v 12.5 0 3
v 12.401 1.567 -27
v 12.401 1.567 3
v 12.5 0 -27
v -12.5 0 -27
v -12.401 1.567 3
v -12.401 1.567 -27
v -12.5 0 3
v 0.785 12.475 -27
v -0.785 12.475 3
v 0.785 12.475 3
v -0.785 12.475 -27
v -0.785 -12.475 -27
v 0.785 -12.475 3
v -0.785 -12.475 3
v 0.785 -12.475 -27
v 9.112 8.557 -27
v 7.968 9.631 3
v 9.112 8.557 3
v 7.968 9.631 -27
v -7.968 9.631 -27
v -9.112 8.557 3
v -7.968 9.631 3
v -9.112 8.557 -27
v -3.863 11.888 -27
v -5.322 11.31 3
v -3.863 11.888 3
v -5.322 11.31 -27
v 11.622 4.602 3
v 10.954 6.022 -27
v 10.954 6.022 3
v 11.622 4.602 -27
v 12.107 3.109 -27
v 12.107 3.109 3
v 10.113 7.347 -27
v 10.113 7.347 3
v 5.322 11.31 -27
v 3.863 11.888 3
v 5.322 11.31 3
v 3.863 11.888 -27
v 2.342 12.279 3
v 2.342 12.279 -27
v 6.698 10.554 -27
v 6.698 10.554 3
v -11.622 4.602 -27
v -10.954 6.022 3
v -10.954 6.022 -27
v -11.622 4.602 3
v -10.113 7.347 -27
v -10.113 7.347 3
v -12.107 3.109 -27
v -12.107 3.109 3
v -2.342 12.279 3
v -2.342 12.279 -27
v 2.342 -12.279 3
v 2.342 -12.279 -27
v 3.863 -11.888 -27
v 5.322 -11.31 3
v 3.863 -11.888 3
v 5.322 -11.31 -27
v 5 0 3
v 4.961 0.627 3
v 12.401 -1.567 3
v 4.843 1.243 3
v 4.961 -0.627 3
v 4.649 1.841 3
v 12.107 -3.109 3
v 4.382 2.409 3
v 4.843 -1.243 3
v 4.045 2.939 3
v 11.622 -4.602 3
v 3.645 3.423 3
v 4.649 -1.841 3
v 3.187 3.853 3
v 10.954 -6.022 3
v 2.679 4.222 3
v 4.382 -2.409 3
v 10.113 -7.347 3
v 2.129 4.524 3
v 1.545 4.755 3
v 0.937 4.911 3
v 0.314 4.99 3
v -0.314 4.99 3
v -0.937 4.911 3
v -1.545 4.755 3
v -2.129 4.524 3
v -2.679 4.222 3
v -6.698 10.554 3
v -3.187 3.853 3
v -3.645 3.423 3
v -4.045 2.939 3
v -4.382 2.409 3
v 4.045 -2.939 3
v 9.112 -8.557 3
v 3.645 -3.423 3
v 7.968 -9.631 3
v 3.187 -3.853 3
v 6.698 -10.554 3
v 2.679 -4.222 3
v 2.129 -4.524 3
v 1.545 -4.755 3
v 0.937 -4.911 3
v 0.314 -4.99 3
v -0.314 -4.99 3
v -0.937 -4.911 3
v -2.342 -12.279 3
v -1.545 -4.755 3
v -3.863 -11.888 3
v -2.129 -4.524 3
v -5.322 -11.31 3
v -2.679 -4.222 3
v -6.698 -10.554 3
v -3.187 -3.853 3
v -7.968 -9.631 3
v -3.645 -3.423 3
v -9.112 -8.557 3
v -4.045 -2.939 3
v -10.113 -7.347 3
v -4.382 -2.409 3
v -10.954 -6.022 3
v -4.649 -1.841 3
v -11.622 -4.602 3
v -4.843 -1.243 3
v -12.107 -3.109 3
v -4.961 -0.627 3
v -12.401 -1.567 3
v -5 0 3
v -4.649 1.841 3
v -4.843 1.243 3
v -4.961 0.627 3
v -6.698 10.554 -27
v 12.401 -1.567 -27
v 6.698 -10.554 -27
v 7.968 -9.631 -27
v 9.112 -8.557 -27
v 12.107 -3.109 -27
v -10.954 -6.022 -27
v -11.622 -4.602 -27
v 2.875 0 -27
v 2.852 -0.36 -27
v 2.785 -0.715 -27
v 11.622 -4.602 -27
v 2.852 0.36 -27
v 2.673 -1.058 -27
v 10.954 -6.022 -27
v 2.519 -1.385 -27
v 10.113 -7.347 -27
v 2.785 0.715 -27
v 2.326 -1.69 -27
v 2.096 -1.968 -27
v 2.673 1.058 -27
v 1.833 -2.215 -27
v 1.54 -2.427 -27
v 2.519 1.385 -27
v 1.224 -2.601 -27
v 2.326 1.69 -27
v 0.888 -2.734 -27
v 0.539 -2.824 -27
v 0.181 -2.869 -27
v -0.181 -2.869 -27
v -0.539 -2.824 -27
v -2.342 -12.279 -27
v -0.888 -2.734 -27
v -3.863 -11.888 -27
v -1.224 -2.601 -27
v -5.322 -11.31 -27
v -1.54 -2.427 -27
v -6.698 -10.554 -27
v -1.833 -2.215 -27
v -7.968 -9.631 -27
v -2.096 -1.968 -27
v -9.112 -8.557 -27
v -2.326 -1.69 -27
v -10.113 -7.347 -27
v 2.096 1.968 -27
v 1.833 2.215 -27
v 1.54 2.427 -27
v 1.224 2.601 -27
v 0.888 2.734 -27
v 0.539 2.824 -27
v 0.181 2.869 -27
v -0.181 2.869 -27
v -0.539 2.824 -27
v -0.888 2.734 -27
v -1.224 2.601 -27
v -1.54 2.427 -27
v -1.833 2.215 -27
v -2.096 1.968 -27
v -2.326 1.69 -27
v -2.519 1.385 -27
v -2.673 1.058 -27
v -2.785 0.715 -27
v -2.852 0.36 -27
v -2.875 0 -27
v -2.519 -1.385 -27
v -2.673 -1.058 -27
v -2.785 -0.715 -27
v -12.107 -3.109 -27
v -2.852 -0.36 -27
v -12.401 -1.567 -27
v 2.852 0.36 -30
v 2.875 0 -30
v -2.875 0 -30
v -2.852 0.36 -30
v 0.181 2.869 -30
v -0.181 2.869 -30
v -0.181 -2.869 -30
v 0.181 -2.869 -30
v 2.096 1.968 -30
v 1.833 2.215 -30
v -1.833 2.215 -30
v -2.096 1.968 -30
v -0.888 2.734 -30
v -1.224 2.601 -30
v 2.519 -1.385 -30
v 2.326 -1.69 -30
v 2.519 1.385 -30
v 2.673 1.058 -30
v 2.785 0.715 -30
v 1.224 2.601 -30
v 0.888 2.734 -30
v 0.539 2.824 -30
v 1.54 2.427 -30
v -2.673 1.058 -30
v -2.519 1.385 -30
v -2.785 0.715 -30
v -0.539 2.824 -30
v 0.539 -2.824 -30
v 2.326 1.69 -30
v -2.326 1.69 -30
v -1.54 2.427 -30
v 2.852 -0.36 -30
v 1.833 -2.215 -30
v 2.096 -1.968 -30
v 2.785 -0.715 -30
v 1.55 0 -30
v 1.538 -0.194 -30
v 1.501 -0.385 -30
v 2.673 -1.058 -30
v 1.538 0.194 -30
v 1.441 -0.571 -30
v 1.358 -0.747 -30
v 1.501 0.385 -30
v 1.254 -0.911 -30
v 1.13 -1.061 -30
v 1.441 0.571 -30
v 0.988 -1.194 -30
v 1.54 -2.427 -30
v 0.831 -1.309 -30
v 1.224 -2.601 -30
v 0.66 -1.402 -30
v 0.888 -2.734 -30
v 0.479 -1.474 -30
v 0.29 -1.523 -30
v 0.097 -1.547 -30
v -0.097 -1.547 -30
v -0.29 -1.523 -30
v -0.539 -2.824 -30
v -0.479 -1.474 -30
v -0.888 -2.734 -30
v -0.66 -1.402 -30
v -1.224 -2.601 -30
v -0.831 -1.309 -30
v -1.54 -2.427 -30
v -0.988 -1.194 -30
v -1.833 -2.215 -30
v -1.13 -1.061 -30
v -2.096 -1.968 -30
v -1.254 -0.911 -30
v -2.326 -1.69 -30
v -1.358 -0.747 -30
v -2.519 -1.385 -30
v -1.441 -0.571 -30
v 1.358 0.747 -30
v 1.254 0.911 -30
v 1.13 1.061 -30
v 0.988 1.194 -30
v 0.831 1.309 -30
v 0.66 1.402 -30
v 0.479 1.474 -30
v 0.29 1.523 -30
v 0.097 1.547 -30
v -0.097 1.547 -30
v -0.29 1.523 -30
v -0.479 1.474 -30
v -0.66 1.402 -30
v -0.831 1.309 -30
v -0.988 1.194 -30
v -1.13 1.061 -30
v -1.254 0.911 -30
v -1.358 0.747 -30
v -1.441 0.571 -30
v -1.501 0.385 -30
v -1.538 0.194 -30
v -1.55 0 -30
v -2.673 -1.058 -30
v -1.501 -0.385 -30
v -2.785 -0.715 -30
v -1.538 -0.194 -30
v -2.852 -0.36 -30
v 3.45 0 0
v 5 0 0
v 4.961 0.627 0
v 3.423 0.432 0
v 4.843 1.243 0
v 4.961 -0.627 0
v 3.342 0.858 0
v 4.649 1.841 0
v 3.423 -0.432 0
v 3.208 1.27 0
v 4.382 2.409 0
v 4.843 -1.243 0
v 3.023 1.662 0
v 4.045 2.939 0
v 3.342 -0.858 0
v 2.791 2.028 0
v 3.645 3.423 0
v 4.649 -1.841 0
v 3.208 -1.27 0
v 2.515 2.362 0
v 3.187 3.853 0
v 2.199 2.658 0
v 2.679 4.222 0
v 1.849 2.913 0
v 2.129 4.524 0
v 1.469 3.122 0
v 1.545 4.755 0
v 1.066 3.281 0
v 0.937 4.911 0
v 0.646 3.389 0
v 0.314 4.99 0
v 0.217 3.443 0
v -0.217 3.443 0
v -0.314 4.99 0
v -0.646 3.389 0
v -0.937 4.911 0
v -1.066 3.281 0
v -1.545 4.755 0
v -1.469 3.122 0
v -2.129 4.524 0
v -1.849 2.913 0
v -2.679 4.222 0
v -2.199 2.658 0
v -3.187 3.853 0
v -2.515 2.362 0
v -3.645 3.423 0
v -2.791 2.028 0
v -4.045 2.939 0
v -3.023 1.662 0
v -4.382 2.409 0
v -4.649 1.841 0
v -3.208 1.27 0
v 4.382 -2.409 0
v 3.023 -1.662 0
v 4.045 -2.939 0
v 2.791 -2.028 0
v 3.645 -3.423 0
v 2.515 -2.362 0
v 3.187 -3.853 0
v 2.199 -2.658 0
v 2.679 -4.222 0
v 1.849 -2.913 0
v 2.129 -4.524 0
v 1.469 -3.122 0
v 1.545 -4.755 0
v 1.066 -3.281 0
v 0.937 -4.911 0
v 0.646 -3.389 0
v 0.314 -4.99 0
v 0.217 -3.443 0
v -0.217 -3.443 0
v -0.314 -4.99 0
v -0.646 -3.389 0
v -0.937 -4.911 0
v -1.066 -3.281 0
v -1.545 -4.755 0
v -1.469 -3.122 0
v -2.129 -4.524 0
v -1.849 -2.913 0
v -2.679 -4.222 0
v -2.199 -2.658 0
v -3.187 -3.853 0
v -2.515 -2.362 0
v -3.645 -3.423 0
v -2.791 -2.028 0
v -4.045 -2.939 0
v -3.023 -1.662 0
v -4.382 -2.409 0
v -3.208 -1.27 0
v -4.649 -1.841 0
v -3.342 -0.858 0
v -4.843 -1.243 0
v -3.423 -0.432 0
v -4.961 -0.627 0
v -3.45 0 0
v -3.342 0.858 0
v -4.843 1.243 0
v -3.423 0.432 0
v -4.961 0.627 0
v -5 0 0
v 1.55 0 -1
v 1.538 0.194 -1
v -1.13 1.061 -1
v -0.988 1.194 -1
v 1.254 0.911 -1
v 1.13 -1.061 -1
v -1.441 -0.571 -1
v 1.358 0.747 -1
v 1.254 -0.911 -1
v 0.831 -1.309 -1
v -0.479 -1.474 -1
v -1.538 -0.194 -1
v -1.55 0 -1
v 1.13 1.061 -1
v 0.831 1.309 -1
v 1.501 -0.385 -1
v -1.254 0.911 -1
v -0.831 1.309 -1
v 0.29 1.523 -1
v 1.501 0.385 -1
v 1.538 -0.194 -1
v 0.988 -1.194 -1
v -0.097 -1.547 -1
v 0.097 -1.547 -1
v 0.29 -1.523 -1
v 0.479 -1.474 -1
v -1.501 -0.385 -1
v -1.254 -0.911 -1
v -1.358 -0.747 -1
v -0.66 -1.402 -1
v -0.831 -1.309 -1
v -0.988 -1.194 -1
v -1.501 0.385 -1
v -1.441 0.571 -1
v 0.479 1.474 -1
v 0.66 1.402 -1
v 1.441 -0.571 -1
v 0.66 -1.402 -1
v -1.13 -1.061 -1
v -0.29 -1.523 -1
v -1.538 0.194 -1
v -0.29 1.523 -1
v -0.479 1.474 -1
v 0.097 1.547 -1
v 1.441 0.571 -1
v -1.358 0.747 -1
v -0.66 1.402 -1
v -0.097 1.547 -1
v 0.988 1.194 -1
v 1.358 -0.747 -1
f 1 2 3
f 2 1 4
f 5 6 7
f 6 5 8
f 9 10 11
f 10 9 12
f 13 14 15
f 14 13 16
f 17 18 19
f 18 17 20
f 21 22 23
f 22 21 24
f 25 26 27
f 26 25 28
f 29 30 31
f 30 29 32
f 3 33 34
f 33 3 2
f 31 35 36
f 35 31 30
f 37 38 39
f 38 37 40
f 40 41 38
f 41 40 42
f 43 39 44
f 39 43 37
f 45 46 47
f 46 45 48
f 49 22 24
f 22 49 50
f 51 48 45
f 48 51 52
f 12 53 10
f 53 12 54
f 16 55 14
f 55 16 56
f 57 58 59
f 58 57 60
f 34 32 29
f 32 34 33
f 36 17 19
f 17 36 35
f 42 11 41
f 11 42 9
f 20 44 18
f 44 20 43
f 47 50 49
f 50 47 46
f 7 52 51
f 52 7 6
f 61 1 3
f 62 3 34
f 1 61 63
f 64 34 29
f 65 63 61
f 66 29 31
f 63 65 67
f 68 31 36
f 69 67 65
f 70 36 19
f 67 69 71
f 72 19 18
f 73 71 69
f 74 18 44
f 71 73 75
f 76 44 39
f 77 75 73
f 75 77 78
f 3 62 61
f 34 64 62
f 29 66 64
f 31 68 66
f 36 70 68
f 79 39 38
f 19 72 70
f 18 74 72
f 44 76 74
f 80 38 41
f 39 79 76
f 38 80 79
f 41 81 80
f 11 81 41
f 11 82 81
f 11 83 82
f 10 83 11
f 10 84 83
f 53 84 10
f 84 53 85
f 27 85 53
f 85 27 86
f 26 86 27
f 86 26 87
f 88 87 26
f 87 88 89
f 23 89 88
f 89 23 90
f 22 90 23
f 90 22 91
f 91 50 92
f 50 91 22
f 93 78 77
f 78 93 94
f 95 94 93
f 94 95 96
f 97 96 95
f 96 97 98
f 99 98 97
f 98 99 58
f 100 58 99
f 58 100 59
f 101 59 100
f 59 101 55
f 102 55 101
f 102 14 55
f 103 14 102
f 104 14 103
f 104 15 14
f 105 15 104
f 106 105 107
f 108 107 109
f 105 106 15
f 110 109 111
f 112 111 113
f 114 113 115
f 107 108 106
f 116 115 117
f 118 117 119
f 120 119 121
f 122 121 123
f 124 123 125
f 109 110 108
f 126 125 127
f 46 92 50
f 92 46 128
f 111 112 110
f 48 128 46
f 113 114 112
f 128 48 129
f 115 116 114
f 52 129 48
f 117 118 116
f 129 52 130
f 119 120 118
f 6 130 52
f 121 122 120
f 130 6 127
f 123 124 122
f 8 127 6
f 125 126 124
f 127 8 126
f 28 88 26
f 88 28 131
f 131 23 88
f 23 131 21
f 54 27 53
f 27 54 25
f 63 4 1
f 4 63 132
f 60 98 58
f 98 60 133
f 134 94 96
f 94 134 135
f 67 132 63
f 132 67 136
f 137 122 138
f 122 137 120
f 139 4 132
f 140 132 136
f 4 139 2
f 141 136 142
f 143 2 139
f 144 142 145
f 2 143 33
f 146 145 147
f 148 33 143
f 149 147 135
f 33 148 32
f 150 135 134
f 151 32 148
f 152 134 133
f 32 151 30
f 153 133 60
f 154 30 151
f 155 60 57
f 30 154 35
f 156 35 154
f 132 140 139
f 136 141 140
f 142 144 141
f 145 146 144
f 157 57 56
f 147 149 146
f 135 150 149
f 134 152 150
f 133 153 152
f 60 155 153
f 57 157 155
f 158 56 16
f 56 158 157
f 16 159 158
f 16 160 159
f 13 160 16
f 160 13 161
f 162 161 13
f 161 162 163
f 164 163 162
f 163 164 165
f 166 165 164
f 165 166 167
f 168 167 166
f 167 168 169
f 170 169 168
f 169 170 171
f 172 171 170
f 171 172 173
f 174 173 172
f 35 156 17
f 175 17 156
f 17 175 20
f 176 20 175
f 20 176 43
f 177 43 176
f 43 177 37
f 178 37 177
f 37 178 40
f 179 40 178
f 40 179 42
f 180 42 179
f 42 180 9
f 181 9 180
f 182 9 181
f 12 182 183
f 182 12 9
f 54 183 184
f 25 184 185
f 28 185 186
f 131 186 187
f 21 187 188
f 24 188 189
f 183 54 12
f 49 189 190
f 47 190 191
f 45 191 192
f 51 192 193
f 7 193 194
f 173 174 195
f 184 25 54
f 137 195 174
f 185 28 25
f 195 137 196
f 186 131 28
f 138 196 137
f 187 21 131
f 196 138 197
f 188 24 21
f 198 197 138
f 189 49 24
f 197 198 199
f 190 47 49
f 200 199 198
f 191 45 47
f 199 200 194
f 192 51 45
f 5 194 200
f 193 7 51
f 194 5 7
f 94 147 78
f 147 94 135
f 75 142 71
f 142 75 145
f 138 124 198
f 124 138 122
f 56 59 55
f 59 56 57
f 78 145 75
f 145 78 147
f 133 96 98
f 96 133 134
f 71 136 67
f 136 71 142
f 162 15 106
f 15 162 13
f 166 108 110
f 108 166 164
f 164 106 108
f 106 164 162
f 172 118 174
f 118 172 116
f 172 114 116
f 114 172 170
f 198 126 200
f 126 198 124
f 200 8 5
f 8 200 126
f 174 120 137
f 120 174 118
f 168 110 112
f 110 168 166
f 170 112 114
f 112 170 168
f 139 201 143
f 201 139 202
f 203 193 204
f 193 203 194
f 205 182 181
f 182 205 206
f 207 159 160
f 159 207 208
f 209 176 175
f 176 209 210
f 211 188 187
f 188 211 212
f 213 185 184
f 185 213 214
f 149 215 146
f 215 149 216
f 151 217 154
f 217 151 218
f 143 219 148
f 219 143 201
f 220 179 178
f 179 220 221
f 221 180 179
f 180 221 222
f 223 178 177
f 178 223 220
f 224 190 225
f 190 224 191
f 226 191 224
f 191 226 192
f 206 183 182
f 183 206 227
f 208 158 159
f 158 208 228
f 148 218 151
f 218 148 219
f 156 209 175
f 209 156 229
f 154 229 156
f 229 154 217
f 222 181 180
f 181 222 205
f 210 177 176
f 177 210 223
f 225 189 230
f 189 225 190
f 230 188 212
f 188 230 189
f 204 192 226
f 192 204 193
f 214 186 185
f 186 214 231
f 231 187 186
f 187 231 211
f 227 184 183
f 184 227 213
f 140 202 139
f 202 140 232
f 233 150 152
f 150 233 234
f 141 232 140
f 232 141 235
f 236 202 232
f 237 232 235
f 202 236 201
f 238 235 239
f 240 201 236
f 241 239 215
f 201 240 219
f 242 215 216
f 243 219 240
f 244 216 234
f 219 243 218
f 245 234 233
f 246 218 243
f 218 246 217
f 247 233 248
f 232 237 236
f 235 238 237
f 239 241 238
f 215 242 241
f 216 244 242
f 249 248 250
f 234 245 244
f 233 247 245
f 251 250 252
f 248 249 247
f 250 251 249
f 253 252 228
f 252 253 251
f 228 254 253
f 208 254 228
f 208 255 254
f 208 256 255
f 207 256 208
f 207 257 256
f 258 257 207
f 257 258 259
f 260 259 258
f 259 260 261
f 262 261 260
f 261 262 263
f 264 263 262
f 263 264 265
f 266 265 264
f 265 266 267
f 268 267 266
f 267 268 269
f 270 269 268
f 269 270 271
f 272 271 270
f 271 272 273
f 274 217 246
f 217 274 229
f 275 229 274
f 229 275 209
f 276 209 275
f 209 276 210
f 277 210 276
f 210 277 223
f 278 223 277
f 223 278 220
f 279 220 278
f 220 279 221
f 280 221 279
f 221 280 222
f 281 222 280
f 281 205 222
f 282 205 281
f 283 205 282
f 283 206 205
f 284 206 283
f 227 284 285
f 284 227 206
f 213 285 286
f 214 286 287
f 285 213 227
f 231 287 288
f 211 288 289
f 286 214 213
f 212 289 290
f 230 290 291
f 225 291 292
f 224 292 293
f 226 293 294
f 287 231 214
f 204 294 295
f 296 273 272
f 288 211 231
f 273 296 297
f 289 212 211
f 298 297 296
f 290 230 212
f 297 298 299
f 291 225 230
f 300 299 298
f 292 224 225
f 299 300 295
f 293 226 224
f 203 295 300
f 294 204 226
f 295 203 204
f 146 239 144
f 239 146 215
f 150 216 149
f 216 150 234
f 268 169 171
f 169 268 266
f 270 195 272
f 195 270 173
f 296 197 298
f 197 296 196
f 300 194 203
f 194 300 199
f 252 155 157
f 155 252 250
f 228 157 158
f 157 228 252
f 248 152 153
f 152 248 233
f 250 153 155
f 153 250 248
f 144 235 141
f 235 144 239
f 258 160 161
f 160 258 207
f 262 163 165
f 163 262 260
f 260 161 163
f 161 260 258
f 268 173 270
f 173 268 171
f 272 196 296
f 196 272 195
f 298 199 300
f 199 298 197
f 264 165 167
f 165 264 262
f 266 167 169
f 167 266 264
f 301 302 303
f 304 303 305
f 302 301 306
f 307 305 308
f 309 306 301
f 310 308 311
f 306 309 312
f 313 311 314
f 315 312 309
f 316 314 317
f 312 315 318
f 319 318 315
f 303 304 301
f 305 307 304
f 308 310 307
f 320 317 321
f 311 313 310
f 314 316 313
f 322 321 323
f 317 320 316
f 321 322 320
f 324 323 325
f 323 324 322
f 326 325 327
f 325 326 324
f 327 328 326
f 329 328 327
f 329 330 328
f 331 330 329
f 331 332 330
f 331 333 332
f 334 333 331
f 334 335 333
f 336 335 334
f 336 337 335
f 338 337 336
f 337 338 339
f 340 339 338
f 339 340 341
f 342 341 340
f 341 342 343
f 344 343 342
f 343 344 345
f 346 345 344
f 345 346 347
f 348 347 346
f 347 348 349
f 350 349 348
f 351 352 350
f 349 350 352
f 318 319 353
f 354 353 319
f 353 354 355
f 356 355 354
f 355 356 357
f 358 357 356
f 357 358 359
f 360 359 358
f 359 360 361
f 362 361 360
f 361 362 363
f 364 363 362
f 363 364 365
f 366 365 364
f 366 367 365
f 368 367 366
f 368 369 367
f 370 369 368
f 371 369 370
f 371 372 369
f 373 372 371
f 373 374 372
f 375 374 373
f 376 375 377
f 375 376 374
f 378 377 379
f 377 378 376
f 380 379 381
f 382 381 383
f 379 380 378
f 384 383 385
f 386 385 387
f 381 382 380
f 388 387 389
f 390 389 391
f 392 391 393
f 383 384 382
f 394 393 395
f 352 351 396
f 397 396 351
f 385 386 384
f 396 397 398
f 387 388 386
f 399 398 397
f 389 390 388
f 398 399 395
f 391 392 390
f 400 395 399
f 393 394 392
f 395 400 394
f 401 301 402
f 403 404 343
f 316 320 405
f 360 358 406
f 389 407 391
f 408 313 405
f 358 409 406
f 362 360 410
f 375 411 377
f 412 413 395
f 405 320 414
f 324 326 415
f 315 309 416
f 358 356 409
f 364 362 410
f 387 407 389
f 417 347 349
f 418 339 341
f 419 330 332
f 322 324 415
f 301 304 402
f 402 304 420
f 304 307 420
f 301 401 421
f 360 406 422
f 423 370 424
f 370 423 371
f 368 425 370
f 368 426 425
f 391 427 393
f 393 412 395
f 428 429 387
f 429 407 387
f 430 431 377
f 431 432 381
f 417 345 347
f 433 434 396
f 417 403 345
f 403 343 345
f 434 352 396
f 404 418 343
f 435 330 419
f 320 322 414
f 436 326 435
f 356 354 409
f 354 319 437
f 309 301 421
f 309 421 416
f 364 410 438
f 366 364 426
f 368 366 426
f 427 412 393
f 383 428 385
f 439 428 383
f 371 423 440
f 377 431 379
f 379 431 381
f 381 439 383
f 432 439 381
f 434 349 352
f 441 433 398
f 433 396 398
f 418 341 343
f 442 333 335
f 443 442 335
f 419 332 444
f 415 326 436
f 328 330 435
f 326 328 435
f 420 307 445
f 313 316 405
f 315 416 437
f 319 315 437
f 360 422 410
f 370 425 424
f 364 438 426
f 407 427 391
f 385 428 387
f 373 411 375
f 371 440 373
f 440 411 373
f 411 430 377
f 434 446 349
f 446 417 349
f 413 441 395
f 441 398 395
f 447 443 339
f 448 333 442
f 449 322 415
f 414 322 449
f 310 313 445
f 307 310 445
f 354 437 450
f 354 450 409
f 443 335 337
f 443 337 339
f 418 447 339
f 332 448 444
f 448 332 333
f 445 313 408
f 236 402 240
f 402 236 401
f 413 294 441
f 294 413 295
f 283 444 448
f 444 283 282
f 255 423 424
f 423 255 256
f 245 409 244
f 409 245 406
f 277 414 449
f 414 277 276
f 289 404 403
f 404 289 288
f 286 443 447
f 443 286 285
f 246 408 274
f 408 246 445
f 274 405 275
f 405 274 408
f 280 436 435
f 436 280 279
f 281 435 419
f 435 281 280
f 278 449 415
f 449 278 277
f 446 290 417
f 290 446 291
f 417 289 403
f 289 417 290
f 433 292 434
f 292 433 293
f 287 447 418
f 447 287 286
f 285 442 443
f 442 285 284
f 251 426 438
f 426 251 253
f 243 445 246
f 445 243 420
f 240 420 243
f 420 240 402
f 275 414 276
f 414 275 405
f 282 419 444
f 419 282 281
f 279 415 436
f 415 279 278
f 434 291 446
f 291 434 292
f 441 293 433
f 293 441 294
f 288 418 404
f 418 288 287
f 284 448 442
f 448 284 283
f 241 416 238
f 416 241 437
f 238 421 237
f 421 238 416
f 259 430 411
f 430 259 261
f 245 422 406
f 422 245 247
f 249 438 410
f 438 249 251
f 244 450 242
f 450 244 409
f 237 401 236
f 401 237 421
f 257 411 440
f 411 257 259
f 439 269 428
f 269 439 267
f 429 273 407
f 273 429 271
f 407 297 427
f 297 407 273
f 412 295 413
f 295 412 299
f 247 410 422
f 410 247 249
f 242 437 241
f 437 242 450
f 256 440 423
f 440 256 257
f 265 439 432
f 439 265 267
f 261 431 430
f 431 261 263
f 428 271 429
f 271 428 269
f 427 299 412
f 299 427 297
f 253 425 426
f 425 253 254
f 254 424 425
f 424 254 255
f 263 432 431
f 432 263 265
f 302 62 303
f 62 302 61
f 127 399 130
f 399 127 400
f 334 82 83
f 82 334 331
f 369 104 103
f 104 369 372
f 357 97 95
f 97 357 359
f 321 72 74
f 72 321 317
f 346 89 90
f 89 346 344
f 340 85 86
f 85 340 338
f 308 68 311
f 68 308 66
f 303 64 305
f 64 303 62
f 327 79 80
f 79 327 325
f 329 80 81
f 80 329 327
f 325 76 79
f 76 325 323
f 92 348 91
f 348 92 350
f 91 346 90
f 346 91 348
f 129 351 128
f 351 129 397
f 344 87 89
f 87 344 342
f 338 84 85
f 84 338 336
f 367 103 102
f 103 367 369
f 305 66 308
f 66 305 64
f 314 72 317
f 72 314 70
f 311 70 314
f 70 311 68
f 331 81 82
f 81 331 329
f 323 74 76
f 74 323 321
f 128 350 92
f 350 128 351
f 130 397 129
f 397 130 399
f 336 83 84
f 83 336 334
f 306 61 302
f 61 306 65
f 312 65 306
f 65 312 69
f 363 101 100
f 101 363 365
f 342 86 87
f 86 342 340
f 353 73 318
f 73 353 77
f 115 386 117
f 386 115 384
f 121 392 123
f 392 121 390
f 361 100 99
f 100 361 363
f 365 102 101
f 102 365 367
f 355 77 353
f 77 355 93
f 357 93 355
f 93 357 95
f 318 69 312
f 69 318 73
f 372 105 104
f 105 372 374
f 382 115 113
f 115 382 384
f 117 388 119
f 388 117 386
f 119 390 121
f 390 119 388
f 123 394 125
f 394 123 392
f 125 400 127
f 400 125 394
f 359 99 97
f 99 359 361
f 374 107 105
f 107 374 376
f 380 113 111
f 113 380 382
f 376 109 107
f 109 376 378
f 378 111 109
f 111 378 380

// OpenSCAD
$fn = 50;


difference() {
	union() {
		translate(v = [0, 0, -27.0000000000]) {
			cylinder(h = 30, r = 12.5000000000);
		}
		#translate(v = [0, 0, -30.0000000000]) {
			cylinder(h = 30, r = 2.8750000000);
		}
	}
	union() {
		translate(v = [0, 0, 0]) {
			rotate(a = [0, 0, 0]) {
				difference() {
					union() {
						translate(v = [0, 0, -30.0000000000]) {
							cylinder(h = 30, r = 1.2500000000);
						}
						translate(v = [0, 0, -1.0000000000]) {
							cylinder(h = 1.0000000000, r1 = 1.5500000000, r2 = 3.4500000000);
						}
						translate(v = [0, 0, -30.0000000000]) {
							cylinder(h = 30, r = 1.5500000000);
						}
						translate(v = [0, 0, -30.0000000000]) {
							cylinder(h = 30, r = 1.2500000000);
						}
					}
					union();
				}
			}
		}
		#cylinder(h = 3, r = 5.0000000000);
	}
}
